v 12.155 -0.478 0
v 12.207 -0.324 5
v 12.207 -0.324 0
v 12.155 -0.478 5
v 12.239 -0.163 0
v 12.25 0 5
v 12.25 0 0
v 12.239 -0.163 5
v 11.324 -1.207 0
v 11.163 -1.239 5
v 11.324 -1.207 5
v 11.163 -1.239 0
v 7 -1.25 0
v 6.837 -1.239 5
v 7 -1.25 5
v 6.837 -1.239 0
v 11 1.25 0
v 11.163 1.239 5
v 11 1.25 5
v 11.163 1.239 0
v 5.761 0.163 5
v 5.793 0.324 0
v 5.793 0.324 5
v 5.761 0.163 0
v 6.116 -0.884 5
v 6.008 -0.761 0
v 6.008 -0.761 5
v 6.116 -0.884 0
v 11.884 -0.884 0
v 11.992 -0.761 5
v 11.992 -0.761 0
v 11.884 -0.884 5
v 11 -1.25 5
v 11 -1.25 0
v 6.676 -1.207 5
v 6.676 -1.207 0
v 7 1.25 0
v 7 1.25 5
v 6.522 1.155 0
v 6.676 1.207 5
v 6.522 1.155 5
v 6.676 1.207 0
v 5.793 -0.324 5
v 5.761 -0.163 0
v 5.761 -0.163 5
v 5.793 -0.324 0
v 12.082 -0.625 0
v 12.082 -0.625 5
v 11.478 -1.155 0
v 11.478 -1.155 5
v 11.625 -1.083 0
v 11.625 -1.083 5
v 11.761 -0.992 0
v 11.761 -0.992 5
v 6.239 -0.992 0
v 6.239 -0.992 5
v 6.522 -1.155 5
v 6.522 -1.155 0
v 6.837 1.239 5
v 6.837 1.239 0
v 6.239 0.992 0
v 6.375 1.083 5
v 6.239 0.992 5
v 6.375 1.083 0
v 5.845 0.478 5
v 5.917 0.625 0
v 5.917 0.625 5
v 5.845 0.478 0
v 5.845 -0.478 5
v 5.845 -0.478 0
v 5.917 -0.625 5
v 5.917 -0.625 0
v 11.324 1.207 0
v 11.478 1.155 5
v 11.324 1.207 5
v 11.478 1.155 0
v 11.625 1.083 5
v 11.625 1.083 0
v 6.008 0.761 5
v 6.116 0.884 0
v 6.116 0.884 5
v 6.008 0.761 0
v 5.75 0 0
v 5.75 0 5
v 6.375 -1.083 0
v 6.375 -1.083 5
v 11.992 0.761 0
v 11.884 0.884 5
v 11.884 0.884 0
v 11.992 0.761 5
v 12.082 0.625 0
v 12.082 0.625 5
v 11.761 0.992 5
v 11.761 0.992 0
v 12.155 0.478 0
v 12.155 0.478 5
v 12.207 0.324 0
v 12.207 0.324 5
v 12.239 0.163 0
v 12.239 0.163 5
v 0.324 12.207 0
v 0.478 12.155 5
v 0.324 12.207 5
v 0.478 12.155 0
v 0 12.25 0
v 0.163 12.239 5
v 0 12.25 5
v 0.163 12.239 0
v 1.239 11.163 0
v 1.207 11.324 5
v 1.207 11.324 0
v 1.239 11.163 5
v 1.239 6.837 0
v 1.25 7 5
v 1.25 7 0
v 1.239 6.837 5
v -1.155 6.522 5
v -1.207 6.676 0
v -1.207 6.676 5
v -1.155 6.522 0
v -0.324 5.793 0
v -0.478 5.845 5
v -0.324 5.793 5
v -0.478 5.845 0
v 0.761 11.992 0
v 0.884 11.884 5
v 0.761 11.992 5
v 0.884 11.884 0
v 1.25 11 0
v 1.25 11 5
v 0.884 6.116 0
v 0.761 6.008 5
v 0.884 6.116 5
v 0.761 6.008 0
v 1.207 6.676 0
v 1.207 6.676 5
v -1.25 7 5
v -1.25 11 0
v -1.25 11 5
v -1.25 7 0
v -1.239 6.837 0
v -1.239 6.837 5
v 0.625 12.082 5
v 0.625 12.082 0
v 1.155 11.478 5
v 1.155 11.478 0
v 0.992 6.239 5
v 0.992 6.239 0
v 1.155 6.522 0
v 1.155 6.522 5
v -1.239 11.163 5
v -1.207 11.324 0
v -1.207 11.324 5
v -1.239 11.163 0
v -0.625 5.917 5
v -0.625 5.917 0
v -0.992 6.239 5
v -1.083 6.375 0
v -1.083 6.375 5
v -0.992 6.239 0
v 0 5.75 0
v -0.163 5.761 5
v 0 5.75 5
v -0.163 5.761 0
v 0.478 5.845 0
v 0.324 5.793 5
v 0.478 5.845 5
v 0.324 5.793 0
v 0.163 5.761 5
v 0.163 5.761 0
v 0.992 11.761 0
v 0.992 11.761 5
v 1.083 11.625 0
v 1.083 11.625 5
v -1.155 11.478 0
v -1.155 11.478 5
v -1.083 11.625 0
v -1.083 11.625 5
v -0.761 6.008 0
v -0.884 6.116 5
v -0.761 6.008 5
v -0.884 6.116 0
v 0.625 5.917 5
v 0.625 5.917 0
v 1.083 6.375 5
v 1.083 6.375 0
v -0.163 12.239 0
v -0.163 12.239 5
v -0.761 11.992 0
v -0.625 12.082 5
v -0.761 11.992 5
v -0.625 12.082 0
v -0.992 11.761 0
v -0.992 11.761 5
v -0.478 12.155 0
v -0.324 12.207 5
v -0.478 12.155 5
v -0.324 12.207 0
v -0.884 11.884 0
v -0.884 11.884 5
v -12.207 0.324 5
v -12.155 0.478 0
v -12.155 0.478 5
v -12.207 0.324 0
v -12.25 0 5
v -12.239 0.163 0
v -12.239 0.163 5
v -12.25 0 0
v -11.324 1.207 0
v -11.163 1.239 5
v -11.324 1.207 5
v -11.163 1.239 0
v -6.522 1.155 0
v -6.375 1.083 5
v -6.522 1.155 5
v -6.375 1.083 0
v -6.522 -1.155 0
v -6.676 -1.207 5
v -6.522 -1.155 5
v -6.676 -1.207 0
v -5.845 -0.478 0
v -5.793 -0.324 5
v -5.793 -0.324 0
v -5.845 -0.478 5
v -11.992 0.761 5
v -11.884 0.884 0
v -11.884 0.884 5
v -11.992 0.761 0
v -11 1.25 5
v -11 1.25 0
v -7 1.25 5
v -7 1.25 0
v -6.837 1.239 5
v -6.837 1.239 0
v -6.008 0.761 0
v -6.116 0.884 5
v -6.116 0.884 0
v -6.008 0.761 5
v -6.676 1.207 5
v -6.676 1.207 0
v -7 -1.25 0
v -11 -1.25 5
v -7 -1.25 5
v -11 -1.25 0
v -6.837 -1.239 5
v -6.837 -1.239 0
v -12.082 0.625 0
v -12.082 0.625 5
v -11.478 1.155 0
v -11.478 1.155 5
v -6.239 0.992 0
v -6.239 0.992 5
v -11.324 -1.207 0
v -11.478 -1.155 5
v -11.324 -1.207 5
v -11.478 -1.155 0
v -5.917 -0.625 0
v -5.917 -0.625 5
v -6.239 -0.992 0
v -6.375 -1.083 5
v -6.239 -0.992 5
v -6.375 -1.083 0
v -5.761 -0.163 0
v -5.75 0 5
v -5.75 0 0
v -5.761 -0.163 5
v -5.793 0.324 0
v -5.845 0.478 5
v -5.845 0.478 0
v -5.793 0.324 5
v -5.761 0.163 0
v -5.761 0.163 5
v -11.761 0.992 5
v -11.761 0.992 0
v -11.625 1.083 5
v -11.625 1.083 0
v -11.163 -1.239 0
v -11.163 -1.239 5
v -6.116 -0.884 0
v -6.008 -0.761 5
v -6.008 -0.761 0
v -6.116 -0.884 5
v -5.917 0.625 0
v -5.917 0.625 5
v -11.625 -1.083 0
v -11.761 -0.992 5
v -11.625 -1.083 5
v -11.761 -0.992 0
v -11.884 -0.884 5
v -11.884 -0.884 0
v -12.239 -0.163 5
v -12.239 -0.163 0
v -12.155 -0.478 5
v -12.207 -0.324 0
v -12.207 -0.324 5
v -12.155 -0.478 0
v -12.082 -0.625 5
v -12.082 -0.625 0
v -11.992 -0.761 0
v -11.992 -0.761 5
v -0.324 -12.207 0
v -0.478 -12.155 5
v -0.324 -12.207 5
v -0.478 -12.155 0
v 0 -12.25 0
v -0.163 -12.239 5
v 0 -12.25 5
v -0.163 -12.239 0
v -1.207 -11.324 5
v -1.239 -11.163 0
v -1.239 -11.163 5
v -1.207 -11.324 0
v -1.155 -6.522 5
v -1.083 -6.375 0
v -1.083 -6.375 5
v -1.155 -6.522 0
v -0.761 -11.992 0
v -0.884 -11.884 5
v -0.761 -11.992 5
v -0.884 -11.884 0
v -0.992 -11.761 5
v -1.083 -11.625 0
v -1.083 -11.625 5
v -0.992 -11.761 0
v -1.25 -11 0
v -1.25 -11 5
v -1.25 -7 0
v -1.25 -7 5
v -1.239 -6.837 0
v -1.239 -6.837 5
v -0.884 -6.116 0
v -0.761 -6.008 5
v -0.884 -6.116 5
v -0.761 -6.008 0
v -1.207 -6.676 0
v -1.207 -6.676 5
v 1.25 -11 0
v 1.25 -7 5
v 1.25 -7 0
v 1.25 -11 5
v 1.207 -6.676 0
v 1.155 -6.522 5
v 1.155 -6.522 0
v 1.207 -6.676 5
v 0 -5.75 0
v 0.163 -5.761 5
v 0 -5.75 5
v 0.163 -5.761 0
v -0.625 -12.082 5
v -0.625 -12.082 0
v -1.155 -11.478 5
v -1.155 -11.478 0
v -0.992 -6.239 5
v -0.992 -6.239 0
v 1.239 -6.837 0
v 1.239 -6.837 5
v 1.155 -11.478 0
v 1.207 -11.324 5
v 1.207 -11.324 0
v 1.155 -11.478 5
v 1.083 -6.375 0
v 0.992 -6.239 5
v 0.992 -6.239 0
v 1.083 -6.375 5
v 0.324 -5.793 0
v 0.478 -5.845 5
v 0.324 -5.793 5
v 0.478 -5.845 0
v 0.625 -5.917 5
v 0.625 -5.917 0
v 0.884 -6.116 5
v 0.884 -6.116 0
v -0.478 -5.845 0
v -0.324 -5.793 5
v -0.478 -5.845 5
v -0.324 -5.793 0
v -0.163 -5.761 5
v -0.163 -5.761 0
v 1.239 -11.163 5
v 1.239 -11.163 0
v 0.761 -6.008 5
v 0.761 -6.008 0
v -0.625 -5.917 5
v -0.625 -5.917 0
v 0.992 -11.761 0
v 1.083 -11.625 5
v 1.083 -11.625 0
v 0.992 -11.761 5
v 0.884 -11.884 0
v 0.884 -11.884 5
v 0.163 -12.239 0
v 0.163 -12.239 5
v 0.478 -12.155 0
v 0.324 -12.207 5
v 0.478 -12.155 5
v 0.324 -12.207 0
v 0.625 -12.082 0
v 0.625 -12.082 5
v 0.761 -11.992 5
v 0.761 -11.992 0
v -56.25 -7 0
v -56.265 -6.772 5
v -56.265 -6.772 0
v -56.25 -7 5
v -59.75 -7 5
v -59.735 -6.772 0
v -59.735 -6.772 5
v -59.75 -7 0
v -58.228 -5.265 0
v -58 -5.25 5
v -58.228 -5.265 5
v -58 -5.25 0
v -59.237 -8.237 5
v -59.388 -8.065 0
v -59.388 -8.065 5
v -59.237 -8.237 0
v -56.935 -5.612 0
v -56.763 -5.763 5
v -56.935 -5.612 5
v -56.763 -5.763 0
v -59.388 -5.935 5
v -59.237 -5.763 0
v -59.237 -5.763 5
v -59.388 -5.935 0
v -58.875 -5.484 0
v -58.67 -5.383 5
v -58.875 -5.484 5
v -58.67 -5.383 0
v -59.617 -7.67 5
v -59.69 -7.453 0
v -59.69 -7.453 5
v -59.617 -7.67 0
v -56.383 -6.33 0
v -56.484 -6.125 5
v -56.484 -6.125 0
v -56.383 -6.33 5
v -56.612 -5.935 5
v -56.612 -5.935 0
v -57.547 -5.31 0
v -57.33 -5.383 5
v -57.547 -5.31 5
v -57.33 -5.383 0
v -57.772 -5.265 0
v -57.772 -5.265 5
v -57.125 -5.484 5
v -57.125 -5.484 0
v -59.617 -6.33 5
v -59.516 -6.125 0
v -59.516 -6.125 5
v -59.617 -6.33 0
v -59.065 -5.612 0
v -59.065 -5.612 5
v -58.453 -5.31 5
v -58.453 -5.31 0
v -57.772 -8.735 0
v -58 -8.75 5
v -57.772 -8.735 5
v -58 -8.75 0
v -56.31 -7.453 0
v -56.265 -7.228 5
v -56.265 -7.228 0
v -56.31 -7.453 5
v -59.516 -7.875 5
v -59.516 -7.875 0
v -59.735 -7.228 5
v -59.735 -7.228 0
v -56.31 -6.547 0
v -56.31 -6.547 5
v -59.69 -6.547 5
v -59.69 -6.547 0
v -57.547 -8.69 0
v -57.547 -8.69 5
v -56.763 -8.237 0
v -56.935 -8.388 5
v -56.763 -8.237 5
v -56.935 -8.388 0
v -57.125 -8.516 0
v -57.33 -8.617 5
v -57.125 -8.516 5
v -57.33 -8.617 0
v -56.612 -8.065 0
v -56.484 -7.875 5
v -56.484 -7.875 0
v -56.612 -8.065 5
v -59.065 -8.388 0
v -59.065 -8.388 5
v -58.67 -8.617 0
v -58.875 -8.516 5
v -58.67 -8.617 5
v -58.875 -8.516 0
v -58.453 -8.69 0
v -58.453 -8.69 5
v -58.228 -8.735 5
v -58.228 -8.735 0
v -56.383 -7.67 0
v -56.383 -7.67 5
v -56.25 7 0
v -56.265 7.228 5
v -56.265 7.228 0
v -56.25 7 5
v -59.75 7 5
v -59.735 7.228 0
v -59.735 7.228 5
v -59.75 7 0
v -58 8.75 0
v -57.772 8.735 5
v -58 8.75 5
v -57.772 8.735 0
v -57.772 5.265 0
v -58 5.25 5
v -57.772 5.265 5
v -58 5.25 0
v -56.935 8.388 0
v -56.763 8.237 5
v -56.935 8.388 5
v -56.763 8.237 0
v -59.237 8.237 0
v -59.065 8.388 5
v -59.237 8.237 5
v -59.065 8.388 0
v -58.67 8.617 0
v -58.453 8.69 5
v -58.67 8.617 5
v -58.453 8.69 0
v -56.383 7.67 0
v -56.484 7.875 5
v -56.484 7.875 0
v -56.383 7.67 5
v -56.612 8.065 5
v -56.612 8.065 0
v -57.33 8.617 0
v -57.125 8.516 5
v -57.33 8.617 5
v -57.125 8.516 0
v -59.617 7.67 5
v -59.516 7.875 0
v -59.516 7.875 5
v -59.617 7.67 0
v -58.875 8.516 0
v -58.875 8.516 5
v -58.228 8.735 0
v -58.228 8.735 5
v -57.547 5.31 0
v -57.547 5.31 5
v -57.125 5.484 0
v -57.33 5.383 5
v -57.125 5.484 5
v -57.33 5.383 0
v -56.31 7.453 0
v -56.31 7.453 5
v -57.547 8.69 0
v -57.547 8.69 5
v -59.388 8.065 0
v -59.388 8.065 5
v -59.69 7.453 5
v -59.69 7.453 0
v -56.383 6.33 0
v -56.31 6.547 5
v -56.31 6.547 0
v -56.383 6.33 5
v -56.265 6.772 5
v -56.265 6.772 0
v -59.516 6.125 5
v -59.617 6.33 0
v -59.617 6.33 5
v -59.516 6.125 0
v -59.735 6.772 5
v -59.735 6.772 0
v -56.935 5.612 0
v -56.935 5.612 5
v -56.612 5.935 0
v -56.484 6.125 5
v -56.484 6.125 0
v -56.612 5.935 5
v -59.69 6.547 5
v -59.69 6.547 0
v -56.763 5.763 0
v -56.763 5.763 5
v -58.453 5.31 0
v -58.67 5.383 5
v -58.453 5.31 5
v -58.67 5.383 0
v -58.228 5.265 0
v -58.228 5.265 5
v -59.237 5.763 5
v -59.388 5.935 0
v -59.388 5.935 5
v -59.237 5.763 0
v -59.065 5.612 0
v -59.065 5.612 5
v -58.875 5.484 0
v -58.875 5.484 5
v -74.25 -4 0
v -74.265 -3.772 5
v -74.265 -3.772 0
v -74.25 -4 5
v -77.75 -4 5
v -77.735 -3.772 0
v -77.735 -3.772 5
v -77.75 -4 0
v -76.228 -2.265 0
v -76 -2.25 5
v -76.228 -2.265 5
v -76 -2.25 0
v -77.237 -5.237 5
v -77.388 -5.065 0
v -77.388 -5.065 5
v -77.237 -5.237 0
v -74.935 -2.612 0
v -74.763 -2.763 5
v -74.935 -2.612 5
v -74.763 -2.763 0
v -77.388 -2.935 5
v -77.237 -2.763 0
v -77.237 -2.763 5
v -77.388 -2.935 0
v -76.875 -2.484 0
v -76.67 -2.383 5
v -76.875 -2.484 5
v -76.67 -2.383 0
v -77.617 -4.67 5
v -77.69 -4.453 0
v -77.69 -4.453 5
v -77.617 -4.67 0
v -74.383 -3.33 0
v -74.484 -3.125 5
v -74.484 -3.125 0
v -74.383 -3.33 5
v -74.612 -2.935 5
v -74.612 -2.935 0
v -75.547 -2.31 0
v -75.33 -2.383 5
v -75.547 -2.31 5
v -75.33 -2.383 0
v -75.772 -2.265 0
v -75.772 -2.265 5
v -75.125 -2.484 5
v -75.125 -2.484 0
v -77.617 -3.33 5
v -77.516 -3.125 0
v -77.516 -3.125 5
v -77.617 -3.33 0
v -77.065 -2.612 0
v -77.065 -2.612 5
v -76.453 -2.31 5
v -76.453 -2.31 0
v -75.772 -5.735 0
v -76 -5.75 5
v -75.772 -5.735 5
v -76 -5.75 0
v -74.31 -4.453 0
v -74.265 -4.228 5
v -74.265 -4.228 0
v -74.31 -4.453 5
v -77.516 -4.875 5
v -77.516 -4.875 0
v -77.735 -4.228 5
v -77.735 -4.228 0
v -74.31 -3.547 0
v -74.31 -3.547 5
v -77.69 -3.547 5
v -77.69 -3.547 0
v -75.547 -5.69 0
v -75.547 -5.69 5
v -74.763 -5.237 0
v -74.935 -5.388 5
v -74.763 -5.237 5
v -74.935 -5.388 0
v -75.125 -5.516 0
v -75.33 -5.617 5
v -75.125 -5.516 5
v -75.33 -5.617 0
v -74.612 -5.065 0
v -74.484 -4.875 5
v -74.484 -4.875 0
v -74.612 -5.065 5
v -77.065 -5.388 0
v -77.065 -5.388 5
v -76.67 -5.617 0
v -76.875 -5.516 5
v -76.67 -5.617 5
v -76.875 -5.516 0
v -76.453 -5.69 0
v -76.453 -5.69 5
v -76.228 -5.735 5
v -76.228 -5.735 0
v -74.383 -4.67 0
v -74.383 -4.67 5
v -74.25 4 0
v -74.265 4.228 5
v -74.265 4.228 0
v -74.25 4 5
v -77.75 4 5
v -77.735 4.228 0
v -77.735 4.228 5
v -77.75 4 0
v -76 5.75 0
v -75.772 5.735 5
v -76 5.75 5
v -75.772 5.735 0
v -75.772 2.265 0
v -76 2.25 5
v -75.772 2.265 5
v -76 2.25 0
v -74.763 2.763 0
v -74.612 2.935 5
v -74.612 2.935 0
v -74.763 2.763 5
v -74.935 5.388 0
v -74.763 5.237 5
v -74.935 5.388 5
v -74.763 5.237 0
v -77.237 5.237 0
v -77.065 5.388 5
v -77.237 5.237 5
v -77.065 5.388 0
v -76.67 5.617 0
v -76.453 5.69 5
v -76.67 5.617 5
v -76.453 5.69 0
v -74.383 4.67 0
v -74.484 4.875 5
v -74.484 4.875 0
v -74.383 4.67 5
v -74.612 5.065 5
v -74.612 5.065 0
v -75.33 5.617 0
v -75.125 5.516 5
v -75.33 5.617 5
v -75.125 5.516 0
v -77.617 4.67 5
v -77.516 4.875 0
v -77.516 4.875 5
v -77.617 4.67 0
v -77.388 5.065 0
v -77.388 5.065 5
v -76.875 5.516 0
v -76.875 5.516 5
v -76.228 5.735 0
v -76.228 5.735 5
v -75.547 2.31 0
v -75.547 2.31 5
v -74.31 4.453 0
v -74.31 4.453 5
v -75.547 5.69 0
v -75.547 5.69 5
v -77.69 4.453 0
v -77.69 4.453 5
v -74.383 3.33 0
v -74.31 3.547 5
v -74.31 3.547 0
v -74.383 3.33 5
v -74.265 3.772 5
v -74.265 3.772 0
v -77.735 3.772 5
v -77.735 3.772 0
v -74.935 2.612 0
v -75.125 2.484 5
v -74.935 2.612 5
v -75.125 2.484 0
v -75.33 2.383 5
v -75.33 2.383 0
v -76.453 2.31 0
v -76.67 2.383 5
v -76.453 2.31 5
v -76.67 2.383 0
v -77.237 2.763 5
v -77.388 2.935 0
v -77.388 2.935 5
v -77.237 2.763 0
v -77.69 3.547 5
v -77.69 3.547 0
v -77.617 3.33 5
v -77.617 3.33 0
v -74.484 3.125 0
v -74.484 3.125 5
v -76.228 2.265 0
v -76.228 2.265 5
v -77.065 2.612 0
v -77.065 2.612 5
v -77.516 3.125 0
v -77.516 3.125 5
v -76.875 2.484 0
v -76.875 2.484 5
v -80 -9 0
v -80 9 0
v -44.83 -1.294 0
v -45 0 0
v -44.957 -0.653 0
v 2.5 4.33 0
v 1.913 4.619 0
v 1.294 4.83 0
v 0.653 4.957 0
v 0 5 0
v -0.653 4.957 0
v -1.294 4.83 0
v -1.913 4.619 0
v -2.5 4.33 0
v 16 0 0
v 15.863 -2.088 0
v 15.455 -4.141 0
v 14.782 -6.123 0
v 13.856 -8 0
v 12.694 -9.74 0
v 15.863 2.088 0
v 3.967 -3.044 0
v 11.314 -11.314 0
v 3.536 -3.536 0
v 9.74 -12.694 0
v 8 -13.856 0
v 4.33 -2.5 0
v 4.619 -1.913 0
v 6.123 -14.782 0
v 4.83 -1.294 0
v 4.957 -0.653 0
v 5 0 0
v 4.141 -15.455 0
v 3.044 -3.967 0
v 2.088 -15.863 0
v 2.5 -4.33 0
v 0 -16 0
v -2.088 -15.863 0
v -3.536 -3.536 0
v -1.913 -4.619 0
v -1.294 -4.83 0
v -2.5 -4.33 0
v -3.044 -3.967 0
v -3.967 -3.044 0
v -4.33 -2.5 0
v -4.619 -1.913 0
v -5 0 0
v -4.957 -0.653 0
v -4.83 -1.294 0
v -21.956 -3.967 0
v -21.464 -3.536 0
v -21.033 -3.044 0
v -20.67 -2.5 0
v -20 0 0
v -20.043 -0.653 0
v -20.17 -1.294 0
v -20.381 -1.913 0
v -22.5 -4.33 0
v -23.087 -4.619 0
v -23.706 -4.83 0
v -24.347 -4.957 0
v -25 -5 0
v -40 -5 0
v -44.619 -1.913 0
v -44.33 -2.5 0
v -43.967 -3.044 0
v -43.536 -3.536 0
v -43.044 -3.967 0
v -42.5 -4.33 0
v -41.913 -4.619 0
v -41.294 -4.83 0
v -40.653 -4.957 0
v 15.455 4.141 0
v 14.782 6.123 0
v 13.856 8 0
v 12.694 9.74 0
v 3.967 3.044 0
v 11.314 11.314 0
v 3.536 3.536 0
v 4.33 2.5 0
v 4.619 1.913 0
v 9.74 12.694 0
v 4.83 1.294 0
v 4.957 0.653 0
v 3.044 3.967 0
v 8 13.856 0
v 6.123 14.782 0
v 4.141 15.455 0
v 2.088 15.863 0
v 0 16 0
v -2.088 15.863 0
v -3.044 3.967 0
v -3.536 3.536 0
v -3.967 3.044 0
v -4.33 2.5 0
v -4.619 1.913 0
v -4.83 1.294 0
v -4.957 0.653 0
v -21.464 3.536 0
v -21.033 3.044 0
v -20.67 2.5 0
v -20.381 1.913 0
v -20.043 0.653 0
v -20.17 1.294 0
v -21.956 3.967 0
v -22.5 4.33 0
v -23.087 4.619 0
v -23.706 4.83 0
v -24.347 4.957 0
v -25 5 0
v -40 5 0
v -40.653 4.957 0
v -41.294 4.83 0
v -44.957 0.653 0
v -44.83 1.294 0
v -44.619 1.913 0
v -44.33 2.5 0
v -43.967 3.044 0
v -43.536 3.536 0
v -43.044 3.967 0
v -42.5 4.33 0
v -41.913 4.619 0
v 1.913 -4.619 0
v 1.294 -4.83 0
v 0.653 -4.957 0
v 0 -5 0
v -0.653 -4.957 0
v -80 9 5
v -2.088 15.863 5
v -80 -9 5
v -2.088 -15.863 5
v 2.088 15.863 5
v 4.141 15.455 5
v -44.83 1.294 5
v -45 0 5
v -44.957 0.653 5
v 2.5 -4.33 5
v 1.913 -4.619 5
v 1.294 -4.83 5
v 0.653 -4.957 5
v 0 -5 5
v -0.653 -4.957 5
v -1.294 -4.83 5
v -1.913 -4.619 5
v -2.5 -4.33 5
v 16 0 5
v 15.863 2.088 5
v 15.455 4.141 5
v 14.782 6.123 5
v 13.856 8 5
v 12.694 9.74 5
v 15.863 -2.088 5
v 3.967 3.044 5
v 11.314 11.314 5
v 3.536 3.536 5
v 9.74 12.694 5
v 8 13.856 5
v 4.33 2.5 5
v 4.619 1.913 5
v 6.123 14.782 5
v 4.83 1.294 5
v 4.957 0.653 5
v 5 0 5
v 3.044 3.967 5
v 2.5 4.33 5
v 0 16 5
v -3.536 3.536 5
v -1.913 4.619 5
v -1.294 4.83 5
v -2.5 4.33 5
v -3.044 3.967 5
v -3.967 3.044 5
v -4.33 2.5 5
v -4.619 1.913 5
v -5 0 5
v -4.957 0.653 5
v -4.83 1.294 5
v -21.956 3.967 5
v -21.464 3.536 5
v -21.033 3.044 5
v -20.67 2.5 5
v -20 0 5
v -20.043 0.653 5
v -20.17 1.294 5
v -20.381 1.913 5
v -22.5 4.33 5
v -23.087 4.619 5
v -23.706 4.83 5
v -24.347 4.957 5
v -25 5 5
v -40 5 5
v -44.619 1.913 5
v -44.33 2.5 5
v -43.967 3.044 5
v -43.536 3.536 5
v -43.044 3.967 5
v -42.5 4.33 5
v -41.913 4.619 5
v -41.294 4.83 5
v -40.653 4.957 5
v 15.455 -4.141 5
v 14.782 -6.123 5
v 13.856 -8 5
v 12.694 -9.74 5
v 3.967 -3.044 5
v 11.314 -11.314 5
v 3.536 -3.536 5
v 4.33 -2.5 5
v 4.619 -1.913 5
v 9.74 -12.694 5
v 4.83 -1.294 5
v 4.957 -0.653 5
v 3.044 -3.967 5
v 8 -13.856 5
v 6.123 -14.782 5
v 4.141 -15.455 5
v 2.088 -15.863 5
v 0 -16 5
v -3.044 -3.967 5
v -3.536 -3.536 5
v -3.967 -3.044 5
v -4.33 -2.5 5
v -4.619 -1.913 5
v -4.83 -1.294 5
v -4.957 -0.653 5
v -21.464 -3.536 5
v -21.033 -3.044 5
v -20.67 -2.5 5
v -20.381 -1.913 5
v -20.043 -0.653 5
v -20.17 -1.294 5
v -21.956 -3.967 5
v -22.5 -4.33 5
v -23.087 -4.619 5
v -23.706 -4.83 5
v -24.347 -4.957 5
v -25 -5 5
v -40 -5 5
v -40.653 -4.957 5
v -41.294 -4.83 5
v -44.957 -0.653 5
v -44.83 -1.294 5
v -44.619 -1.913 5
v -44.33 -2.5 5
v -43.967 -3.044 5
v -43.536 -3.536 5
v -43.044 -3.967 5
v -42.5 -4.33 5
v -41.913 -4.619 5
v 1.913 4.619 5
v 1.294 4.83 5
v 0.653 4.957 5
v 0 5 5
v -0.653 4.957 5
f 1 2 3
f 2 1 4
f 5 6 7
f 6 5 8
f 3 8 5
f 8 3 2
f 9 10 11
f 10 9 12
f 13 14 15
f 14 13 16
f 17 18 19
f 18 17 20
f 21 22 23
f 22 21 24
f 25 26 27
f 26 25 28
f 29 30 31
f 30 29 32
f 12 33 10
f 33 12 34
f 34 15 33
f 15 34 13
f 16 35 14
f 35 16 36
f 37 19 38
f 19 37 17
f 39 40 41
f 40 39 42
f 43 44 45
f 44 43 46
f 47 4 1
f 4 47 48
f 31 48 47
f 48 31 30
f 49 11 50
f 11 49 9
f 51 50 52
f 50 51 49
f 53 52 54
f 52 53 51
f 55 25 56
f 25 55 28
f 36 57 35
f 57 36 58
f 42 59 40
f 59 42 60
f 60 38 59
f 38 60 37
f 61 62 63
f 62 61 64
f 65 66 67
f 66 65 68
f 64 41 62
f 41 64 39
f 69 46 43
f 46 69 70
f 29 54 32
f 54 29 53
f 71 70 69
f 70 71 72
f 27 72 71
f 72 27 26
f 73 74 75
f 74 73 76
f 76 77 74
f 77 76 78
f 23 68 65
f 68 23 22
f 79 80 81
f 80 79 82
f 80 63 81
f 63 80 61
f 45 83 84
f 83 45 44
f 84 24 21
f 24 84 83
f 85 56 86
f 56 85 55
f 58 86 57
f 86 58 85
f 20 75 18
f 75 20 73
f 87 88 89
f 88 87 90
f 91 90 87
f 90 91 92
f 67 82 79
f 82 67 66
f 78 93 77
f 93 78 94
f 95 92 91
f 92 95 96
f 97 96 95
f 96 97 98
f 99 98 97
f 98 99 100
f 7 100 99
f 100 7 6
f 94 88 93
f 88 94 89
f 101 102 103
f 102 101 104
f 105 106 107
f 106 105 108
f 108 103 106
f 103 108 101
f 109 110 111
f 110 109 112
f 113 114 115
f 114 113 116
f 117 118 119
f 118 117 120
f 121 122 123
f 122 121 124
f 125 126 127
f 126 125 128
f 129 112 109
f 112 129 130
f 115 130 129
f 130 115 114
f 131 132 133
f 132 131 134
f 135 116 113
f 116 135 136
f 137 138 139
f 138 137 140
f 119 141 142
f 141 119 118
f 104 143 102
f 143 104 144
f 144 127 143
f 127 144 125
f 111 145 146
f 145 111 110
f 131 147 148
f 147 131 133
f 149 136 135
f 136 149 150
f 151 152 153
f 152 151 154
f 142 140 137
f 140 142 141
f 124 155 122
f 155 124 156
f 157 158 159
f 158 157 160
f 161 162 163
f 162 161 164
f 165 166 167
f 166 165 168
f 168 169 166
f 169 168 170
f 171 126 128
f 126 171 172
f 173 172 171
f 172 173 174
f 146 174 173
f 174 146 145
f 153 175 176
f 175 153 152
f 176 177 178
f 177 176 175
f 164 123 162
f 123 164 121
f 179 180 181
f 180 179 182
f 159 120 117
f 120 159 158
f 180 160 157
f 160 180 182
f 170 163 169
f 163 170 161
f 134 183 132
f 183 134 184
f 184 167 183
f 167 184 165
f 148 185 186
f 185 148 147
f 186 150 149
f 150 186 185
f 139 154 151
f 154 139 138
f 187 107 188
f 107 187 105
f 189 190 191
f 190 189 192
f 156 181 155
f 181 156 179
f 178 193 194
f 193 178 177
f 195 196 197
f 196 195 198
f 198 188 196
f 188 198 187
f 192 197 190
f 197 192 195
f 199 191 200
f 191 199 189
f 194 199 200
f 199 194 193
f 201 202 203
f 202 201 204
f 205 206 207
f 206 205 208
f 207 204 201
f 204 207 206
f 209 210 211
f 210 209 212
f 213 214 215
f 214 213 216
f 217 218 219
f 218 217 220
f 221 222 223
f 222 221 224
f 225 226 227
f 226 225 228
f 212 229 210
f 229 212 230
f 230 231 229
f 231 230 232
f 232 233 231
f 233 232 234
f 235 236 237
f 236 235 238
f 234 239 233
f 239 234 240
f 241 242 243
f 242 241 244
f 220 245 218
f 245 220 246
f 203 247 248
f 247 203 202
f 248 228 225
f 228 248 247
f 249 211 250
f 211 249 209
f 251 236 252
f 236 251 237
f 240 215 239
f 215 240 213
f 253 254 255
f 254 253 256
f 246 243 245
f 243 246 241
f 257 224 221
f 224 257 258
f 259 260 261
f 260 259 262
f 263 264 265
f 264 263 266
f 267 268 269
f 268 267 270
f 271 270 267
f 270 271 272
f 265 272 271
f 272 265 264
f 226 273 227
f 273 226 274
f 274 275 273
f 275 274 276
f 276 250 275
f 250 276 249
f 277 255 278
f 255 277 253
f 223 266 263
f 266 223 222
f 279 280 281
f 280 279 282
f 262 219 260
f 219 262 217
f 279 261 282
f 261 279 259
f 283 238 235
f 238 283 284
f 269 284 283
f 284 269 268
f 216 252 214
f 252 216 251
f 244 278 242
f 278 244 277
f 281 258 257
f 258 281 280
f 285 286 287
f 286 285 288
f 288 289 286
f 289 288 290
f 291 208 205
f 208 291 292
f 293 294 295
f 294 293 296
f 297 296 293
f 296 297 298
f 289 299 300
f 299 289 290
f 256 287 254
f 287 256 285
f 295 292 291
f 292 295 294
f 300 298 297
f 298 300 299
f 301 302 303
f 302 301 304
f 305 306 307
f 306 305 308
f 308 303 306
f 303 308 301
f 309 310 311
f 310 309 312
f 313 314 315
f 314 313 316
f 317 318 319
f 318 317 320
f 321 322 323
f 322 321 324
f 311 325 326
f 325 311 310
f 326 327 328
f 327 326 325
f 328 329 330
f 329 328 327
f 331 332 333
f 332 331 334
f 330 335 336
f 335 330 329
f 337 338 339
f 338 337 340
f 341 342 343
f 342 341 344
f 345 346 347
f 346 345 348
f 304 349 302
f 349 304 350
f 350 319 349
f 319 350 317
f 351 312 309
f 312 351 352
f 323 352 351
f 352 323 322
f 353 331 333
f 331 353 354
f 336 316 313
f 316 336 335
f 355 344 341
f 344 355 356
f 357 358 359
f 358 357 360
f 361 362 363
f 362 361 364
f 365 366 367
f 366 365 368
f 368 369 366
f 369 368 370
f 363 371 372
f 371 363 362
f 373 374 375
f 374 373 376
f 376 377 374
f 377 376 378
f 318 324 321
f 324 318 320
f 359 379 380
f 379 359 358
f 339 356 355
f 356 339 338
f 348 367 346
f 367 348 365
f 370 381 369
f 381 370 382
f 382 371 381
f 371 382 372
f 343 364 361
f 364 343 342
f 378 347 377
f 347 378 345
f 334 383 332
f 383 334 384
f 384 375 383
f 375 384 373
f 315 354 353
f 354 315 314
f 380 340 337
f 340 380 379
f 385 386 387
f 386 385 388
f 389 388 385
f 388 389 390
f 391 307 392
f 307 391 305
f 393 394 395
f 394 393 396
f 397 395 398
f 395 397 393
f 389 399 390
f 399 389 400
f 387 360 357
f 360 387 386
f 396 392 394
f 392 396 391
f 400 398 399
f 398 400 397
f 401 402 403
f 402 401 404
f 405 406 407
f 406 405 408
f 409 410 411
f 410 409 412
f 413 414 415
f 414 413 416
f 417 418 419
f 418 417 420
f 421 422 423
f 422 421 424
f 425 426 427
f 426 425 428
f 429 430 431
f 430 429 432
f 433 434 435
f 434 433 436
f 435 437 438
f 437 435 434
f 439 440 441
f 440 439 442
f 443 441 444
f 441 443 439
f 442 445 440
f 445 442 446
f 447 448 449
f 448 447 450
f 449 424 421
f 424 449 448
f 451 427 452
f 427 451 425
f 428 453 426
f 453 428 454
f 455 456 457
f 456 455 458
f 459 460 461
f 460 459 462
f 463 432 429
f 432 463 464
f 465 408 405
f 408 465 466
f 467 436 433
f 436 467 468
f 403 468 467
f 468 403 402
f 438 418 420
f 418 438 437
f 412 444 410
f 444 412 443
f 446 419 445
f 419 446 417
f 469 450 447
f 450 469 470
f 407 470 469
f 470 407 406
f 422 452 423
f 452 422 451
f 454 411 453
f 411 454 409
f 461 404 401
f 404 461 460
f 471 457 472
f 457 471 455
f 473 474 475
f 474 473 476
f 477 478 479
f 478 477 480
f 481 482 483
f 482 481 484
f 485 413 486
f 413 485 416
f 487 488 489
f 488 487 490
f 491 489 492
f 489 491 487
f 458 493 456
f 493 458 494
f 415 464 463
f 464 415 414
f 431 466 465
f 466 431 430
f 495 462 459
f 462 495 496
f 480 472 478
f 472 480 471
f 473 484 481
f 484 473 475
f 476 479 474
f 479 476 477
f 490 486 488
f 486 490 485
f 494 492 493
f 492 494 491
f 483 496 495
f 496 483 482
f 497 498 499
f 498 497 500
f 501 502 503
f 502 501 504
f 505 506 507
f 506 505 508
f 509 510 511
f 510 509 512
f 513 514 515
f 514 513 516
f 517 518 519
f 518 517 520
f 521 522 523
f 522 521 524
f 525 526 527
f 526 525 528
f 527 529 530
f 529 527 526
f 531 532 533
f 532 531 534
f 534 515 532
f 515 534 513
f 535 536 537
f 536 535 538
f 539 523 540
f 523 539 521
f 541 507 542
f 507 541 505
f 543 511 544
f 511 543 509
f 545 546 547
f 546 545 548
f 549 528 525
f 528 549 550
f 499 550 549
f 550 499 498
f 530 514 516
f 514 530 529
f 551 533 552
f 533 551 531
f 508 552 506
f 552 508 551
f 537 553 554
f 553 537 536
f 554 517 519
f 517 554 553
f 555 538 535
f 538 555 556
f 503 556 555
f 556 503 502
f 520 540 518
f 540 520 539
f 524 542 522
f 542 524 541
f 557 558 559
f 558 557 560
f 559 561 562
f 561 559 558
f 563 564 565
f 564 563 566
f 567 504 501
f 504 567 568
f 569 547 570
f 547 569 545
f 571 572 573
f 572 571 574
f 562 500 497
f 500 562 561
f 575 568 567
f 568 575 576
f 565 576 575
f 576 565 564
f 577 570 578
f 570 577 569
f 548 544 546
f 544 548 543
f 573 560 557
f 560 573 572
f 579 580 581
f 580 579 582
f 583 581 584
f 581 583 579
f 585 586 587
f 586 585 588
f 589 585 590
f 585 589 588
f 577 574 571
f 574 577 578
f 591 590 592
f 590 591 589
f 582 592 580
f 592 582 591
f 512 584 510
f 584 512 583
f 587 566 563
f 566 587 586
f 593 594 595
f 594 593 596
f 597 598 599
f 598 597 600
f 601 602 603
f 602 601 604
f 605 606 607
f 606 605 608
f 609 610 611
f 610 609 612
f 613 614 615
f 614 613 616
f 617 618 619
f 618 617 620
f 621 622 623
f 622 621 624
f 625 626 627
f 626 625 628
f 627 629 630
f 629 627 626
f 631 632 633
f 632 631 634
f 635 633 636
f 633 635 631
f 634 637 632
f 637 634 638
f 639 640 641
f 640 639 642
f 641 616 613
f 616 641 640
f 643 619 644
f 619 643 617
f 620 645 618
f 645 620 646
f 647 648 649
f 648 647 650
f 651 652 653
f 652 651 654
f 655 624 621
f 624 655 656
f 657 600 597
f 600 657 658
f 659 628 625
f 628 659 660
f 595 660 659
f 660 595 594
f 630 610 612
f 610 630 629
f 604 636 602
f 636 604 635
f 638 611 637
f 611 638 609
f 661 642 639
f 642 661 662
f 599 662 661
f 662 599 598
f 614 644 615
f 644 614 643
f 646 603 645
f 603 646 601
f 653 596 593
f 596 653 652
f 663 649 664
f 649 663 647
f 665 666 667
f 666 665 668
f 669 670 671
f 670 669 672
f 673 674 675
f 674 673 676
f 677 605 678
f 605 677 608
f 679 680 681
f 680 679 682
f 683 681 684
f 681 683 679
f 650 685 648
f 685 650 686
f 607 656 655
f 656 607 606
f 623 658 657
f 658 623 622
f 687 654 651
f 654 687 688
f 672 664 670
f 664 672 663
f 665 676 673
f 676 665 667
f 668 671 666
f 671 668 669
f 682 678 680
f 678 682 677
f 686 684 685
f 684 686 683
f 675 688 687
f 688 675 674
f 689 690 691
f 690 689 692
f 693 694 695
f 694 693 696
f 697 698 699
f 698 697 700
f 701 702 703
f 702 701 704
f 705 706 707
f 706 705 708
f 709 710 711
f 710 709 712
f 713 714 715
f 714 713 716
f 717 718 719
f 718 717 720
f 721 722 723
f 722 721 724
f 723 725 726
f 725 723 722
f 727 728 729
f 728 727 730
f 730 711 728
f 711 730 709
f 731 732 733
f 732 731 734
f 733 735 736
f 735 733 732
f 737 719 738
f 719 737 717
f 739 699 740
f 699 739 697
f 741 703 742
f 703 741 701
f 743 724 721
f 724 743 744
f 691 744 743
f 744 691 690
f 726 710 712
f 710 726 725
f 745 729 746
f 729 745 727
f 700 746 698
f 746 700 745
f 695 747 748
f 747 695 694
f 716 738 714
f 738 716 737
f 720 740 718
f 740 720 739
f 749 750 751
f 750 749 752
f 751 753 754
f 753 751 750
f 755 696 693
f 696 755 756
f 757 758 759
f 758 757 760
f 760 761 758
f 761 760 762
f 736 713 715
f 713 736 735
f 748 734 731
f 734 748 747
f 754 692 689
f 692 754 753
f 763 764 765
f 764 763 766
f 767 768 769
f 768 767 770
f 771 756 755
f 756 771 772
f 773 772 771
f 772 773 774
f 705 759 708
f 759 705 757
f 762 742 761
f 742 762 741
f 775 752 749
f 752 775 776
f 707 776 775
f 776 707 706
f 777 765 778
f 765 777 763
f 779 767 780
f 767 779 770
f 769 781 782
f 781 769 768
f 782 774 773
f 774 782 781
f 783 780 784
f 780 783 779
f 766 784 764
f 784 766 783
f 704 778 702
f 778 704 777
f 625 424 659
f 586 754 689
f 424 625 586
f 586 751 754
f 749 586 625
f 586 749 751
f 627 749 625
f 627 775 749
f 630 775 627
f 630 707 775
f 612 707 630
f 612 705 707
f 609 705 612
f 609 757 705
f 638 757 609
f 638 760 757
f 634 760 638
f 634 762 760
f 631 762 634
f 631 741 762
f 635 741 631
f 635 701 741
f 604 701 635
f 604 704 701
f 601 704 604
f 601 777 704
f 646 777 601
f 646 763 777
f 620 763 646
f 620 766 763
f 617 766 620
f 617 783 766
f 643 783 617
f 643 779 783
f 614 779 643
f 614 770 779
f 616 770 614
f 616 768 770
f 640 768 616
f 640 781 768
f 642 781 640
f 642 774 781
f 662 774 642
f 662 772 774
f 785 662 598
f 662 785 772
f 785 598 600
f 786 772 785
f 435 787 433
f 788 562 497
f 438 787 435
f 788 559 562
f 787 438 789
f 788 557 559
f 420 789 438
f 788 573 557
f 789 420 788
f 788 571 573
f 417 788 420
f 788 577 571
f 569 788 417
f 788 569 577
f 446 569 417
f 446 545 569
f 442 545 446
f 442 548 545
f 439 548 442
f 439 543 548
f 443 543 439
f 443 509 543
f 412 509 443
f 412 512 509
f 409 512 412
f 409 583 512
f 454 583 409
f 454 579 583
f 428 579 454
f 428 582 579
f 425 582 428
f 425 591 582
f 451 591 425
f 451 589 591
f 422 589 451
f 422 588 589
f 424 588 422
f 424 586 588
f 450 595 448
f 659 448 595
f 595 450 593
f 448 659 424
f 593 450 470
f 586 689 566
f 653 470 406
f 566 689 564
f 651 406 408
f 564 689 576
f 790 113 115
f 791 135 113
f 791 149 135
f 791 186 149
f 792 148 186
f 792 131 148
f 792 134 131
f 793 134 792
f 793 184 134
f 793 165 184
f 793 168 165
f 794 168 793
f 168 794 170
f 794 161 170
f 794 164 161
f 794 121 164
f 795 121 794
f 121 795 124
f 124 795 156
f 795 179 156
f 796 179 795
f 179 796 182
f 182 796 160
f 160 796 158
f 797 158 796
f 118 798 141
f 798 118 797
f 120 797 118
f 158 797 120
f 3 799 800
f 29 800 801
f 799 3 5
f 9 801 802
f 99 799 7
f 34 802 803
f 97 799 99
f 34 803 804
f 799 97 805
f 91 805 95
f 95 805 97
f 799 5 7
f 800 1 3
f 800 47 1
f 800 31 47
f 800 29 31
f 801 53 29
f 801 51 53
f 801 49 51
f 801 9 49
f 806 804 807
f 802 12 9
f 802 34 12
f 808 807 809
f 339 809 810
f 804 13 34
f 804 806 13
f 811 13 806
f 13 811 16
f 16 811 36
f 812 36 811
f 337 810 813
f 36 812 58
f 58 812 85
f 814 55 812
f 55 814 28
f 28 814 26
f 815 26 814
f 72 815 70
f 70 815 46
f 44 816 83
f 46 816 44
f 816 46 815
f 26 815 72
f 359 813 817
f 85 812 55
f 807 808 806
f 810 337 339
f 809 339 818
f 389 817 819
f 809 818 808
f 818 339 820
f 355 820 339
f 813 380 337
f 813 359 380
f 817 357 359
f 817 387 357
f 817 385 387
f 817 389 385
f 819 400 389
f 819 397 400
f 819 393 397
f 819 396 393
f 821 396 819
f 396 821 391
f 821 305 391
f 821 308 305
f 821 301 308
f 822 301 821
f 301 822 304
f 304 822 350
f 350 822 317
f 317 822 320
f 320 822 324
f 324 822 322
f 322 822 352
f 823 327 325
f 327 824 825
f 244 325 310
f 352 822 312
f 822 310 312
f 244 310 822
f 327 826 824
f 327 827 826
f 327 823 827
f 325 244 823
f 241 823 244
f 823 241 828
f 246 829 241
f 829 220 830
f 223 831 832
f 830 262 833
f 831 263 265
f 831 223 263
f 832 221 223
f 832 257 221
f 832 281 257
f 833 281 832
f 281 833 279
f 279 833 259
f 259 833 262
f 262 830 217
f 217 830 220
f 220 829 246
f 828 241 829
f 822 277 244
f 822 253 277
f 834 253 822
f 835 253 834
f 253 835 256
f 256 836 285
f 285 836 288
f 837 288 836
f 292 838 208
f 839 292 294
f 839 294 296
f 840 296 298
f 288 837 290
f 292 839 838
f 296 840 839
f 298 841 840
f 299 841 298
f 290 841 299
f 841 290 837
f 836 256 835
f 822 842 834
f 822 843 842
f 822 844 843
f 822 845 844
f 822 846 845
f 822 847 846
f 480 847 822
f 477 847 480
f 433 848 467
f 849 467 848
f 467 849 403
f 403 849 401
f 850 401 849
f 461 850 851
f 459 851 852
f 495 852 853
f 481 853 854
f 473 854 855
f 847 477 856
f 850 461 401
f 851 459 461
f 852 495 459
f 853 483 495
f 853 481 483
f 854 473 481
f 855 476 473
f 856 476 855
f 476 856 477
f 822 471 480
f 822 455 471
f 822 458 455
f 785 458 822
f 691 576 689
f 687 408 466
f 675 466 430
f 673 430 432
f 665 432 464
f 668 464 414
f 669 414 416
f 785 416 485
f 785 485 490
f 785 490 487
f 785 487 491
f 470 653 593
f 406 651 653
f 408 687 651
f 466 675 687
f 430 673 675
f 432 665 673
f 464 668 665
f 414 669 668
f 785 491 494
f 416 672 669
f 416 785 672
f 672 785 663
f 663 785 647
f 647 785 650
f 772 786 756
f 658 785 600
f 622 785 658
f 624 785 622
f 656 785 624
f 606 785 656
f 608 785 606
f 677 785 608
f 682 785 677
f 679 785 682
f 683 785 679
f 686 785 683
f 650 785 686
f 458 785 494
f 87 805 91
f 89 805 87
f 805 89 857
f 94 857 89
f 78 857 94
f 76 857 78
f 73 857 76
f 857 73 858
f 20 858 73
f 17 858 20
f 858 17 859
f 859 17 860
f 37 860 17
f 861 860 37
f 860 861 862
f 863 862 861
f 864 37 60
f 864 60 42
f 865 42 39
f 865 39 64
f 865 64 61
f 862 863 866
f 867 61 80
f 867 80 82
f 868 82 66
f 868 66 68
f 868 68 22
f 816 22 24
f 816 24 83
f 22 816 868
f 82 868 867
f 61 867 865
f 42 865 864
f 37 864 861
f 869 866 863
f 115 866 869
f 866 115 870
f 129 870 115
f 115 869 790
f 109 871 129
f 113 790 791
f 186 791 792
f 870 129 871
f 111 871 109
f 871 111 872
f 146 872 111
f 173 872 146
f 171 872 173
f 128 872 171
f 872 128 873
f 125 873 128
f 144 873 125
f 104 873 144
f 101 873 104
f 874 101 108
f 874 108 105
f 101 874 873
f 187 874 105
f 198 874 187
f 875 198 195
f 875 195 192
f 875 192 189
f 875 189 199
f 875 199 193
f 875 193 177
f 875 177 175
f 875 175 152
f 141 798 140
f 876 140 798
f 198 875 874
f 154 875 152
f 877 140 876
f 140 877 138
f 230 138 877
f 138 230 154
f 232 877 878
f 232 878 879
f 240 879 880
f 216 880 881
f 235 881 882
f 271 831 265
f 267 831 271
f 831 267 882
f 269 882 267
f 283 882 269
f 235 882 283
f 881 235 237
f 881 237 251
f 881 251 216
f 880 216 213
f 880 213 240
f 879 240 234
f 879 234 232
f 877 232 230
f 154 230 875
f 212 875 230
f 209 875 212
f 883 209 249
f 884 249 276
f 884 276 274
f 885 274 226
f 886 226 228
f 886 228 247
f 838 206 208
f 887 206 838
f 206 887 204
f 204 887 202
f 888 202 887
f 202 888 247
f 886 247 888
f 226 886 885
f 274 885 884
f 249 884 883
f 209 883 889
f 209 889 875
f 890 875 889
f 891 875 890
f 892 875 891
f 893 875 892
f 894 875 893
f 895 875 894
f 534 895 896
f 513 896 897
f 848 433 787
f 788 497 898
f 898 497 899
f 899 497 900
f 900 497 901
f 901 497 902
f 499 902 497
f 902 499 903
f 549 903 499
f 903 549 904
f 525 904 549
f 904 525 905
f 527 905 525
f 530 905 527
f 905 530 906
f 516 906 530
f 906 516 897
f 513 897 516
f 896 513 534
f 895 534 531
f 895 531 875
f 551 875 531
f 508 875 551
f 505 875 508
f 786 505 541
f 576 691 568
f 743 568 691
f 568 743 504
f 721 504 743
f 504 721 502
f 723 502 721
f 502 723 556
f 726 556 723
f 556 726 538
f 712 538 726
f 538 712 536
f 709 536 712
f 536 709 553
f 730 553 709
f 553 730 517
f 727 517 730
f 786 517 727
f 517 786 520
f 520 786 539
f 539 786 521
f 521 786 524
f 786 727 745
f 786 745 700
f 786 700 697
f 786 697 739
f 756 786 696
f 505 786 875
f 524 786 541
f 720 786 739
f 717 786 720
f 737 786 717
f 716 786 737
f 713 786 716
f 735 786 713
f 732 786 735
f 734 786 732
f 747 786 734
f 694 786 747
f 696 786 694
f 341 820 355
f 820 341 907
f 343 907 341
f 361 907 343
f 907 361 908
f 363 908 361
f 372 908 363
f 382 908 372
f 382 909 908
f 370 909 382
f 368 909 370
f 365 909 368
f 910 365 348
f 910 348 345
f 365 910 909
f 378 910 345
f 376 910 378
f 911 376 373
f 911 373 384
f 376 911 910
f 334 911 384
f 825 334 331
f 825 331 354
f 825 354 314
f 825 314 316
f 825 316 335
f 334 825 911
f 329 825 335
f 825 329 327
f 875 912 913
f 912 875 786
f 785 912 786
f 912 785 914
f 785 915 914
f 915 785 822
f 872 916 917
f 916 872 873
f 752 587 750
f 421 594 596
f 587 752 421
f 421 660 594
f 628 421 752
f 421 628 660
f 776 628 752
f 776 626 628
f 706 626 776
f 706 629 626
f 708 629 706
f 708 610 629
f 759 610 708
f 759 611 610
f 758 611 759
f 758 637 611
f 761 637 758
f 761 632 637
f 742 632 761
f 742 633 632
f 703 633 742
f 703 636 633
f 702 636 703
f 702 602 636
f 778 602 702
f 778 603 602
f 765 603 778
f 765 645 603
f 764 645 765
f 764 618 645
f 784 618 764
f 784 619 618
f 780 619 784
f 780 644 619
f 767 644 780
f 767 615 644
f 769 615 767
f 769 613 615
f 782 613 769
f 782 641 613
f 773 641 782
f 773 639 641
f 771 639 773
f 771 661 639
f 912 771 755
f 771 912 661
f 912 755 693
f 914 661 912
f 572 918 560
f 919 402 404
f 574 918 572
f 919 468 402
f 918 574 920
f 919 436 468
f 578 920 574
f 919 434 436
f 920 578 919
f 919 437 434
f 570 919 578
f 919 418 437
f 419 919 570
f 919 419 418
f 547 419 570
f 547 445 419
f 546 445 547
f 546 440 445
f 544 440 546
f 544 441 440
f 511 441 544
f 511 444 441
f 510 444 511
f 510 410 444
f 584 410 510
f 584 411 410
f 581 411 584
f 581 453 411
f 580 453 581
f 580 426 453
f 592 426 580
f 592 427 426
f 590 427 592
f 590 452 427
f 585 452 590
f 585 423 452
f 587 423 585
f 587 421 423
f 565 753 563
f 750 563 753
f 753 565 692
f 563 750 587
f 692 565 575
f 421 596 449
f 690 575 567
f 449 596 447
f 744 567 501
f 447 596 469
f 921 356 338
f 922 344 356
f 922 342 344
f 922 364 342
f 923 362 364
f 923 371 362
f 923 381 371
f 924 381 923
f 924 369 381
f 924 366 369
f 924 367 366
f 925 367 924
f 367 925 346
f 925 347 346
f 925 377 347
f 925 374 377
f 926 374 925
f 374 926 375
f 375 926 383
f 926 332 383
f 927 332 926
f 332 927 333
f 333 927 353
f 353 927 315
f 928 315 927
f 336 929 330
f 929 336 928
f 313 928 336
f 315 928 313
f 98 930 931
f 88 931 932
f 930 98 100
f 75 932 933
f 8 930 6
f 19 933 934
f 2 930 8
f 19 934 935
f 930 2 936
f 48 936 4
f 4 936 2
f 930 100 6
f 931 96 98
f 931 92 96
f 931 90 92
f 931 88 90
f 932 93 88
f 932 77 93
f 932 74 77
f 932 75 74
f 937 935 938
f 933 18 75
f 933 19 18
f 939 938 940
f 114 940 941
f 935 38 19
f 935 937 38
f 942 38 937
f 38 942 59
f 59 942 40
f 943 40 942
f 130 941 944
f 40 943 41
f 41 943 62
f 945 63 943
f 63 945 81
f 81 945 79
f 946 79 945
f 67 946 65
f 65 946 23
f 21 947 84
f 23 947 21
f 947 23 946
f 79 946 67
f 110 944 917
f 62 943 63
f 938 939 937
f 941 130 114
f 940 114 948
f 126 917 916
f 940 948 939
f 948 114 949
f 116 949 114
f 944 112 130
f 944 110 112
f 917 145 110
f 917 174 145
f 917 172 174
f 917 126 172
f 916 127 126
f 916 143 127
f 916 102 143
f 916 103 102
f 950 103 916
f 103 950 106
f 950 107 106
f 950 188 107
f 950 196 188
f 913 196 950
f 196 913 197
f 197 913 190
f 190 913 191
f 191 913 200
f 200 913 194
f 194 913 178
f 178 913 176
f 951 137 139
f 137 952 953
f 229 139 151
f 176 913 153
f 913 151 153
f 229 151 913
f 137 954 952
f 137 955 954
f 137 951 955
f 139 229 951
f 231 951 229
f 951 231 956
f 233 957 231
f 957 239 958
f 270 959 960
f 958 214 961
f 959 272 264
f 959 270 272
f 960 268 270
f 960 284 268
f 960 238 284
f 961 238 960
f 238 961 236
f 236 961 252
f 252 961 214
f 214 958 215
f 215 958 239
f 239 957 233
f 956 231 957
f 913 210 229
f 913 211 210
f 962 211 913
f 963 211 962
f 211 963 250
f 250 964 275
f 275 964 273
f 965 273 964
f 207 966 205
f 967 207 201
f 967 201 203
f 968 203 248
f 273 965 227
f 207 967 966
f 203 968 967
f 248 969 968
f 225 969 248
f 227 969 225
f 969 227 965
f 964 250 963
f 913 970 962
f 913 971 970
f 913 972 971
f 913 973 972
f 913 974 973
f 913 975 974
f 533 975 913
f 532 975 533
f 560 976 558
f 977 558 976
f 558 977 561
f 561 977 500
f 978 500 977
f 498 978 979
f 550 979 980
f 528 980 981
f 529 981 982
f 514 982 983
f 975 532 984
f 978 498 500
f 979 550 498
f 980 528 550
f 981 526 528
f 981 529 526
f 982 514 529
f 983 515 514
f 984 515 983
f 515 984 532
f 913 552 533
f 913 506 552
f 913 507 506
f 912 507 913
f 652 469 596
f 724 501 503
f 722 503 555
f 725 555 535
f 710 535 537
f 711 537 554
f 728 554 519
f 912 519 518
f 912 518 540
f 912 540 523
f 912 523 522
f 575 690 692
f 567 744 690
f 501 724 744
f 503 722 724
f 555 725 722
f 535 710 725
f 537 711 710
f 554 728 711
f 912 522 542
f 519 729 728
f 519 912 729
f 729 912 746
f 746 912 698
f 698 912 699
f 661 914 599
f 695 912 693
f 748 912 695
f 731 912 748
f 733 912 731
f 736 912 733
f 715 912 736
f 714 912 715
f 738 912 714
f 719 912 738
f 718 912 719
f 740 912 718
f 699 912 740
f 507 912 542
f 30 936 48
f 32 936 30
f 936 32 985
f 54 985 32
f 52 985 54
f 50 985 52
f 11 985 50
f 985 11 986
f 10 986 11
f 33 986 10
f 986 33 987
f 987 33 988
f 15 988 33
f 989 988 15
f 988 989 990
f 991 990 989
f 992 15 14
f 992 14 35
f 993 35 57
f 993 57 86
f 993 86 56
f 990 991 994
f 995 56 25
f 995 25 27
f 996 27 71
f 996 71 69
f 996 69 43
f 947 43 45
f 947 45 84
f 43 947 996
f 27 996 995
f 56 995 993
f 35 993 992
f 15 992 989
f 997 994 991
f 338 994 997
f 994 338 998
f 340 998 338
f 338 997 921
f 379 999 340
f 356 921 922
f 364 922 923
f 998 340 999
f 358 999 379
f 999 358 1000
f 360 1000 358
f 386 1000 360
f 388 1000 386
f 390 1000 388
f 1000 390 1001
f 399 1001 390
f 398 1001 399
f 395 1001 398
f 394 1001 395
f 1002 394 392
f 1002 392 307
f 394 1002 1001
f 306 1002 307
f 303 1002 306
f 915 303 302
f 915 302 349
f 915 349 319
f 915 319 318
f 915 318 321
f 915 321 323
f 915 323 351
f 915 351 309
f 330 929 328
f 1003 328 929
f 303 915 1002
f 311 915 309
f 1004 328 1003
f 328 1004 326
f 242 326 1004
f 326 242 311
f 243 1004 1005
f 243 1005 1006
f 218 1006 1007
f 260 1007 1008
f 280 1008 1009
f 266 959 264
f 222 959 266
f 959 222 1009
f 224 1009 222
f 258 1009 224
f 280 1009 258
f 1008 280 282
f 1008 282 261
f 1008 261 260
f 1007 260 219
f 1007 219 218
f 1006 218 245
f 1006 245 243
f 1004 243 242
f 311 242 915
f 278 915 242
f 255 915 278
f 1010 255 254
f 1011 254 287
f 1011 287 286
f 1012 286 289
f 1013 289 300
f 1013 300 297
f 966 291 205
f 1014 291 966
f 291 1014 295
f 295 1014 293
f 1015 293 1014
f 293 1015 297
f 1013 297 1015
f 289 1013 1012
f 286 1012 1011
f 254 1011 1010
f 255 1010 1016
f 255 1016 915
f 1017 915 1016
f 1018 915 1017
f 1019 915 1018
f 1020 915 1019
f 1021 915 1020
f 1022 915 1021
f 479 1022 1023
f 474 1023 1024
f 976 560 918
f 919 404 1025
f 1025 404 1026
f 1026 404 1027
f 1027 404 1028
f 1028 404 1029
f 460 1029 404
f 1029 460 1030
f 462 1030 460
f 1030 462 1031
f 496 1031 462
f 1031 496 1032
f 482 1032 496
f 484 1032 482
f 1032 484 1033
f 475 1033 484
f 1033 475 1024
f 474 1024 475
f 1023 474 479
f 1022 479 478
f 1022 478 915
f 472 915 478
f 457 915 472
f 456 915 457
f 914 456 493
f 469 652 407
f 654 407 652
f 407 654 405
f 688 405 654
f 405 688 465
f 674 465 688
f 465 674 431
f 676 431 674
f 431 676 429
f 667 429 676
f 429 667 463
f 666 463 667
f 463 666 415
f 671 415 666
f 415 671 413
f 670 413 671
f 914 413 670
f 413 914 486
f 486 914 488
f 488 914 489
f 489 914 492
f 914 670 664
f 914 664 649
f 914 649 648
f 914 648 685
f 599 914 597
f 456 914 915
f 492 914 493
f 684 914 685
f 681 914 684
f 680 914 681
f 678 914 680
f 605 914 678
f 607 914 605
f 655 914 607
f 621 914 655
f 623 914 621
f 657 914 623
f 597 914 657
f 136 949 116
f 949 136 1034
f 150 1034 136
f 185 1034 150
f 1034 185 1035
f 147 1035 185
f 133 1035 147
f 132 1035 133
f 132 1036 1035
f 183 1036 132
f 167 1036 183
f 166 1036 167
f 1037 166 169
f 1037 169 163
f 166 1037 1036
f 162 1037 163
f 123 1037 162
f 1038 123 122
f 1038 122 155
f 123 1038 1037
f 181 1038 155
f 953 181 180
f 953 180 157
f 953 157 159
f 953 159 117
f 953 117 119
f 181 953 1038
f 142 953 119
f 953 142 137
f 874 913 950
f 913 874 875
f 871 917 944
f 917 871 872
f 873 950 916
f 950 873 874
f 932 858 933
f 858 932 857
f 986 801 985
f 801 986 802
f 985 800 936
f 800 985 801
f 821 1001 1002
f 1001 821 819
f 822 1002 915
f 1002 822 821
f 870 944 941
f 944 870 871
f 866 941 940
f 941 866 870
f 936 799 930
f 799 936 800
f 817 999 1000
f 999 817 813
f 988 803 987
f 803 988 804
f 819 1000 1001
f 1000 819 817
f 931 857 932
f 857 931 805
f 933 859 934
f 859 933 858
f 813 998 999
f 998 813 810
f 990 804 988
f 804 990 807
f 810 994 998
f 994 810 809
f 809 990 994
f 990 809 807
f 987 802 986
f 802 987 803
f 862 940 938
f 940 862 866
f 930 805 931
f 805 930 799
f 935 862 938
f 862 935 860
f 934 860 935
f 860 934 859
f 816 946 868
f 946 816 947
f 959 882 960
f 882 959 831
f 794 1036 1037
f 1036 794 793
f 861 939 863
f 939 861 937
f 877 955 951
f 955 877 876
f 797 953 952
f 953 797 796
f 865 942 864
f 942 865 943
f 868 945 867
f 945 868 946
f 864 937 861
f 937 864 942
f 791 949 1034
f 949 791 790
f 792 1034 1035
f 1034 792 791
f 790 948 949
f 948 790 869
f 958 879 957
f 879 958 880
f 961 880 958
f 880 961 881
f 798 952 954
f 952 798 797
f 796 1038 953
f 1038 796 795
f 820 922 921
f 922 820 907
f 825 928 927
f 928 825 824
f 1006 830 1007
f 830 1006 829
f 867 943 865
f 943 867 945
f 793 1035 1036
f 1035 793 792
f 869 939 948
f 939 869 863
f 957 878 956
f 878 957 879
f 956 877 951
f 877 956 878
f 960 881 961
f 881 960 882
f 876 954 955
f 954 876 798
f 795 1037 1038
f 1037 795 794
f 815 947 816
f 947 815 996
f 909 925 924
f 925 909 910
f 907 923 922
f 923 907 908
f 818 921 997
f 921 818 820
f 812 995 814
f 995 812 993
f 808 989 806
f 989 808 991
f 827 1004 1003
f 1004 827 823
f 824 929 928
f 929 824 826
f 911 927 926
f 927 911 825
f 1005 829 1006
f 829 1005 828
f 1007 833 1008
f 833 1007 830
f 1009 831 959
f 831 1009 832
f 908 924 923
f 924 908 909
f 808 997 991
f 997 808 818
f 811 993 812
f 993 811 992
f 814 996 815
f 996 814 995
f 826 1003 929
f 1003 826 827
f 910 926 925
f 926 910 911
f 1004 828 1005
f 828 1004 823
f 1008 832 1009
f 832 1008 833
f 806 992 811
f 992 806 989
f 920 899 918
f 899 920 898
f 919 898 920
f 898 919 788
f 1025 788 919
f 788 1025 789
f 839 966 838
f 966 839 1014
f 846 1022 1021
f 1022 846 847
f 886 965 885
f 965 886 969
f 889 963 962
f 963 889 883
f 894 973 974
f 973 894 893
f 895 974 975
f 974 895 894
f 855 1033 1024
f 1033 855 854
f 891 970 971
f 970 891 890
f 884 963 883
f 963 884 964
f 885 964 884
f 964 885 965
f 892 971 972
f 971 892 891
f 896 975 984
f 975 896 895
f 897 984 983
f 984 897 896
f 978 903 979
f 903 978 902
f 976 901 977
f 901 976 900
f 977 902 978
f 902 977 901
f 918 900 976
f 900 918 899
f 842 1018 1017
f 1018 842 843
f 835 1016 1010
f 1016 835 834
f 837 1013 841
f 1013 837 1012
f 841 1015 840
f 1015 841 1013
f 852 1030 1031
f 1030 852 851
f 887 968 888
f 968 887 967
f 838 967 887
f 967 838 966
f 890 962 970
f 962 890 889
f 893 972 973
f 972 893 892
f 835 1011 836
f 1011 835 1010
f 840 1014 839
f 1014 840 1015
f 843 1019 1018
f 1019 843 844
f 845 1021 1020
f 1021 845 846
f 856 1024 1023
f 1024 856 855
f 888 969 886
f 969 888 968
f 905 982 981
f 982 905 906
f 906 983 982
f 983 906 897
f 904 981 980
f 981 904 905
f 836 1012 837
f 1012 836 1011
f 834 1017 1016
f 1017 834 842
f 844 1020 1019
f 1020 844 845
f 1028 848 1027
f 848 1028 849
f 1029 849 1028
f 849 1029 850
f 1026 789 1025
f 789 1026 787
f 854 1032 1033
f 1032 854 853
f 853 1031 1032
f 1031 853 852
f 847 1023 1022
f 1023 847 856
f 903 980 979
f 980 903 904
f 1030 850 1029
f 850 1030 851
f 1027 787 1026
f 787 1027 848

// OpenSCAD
// file: hobby-joint-common.scad
// Rev A local joint datum: rotation axis at x=y=0, axial direction +z.
$fn=48;
shaft_x=-10.35;
horn_z=50;
front_t=5;
rear_top=-16.2;
rear_t=7;
bridge_r=58;
bridge_length=horn_z-rear_top;
bridge_pitch=14;
seat_d=13.2;
seat_depth=5.2;
module bridge_holes(h) {
    for(y=[-bridge_pitch/2,bridge_pitch/2])
        translate([-bridge_r,y,-1]) cylinder(d=3.5,h=h+2);
}
module arm_blank(t) {
    linear_extrude(t) hull() {
        circle(d=32);
        translate([-bridge_r,0]) square([12,26],center=true);
    }
}
module arm_window(t) {
    translate([0,0,-1]) linear_extrude(t+2) hull()
        for(x=[-40,-25]) translate([x,0]) circle(d=10);
}
// main file
include <hobby-joint-common.scad>
// Contact reference is85mm with the matching carrier and1mm rubber pad.
module lower_front_link() {
    difference() {
        linear_extrude(5) hull() {
            circle(d=32);
            translate([-76,0]) square([8,18],center=true);
        }
        translate([0,0,-1]) cylinder(d=10,h=7);
        for(a=[0,90,180,270]) rotate([0,0,a]) hull()
            for(r=[7,11]) translate([r,0,-1]) cylinder(d=2.5,h=7);
        arm_window(5);
        bridge_holes(5);
        for(y=[-4,4]) translate([-76,y,-1]) cylinder(d=3.5,h=7);
    }
}
lower_front_link();
